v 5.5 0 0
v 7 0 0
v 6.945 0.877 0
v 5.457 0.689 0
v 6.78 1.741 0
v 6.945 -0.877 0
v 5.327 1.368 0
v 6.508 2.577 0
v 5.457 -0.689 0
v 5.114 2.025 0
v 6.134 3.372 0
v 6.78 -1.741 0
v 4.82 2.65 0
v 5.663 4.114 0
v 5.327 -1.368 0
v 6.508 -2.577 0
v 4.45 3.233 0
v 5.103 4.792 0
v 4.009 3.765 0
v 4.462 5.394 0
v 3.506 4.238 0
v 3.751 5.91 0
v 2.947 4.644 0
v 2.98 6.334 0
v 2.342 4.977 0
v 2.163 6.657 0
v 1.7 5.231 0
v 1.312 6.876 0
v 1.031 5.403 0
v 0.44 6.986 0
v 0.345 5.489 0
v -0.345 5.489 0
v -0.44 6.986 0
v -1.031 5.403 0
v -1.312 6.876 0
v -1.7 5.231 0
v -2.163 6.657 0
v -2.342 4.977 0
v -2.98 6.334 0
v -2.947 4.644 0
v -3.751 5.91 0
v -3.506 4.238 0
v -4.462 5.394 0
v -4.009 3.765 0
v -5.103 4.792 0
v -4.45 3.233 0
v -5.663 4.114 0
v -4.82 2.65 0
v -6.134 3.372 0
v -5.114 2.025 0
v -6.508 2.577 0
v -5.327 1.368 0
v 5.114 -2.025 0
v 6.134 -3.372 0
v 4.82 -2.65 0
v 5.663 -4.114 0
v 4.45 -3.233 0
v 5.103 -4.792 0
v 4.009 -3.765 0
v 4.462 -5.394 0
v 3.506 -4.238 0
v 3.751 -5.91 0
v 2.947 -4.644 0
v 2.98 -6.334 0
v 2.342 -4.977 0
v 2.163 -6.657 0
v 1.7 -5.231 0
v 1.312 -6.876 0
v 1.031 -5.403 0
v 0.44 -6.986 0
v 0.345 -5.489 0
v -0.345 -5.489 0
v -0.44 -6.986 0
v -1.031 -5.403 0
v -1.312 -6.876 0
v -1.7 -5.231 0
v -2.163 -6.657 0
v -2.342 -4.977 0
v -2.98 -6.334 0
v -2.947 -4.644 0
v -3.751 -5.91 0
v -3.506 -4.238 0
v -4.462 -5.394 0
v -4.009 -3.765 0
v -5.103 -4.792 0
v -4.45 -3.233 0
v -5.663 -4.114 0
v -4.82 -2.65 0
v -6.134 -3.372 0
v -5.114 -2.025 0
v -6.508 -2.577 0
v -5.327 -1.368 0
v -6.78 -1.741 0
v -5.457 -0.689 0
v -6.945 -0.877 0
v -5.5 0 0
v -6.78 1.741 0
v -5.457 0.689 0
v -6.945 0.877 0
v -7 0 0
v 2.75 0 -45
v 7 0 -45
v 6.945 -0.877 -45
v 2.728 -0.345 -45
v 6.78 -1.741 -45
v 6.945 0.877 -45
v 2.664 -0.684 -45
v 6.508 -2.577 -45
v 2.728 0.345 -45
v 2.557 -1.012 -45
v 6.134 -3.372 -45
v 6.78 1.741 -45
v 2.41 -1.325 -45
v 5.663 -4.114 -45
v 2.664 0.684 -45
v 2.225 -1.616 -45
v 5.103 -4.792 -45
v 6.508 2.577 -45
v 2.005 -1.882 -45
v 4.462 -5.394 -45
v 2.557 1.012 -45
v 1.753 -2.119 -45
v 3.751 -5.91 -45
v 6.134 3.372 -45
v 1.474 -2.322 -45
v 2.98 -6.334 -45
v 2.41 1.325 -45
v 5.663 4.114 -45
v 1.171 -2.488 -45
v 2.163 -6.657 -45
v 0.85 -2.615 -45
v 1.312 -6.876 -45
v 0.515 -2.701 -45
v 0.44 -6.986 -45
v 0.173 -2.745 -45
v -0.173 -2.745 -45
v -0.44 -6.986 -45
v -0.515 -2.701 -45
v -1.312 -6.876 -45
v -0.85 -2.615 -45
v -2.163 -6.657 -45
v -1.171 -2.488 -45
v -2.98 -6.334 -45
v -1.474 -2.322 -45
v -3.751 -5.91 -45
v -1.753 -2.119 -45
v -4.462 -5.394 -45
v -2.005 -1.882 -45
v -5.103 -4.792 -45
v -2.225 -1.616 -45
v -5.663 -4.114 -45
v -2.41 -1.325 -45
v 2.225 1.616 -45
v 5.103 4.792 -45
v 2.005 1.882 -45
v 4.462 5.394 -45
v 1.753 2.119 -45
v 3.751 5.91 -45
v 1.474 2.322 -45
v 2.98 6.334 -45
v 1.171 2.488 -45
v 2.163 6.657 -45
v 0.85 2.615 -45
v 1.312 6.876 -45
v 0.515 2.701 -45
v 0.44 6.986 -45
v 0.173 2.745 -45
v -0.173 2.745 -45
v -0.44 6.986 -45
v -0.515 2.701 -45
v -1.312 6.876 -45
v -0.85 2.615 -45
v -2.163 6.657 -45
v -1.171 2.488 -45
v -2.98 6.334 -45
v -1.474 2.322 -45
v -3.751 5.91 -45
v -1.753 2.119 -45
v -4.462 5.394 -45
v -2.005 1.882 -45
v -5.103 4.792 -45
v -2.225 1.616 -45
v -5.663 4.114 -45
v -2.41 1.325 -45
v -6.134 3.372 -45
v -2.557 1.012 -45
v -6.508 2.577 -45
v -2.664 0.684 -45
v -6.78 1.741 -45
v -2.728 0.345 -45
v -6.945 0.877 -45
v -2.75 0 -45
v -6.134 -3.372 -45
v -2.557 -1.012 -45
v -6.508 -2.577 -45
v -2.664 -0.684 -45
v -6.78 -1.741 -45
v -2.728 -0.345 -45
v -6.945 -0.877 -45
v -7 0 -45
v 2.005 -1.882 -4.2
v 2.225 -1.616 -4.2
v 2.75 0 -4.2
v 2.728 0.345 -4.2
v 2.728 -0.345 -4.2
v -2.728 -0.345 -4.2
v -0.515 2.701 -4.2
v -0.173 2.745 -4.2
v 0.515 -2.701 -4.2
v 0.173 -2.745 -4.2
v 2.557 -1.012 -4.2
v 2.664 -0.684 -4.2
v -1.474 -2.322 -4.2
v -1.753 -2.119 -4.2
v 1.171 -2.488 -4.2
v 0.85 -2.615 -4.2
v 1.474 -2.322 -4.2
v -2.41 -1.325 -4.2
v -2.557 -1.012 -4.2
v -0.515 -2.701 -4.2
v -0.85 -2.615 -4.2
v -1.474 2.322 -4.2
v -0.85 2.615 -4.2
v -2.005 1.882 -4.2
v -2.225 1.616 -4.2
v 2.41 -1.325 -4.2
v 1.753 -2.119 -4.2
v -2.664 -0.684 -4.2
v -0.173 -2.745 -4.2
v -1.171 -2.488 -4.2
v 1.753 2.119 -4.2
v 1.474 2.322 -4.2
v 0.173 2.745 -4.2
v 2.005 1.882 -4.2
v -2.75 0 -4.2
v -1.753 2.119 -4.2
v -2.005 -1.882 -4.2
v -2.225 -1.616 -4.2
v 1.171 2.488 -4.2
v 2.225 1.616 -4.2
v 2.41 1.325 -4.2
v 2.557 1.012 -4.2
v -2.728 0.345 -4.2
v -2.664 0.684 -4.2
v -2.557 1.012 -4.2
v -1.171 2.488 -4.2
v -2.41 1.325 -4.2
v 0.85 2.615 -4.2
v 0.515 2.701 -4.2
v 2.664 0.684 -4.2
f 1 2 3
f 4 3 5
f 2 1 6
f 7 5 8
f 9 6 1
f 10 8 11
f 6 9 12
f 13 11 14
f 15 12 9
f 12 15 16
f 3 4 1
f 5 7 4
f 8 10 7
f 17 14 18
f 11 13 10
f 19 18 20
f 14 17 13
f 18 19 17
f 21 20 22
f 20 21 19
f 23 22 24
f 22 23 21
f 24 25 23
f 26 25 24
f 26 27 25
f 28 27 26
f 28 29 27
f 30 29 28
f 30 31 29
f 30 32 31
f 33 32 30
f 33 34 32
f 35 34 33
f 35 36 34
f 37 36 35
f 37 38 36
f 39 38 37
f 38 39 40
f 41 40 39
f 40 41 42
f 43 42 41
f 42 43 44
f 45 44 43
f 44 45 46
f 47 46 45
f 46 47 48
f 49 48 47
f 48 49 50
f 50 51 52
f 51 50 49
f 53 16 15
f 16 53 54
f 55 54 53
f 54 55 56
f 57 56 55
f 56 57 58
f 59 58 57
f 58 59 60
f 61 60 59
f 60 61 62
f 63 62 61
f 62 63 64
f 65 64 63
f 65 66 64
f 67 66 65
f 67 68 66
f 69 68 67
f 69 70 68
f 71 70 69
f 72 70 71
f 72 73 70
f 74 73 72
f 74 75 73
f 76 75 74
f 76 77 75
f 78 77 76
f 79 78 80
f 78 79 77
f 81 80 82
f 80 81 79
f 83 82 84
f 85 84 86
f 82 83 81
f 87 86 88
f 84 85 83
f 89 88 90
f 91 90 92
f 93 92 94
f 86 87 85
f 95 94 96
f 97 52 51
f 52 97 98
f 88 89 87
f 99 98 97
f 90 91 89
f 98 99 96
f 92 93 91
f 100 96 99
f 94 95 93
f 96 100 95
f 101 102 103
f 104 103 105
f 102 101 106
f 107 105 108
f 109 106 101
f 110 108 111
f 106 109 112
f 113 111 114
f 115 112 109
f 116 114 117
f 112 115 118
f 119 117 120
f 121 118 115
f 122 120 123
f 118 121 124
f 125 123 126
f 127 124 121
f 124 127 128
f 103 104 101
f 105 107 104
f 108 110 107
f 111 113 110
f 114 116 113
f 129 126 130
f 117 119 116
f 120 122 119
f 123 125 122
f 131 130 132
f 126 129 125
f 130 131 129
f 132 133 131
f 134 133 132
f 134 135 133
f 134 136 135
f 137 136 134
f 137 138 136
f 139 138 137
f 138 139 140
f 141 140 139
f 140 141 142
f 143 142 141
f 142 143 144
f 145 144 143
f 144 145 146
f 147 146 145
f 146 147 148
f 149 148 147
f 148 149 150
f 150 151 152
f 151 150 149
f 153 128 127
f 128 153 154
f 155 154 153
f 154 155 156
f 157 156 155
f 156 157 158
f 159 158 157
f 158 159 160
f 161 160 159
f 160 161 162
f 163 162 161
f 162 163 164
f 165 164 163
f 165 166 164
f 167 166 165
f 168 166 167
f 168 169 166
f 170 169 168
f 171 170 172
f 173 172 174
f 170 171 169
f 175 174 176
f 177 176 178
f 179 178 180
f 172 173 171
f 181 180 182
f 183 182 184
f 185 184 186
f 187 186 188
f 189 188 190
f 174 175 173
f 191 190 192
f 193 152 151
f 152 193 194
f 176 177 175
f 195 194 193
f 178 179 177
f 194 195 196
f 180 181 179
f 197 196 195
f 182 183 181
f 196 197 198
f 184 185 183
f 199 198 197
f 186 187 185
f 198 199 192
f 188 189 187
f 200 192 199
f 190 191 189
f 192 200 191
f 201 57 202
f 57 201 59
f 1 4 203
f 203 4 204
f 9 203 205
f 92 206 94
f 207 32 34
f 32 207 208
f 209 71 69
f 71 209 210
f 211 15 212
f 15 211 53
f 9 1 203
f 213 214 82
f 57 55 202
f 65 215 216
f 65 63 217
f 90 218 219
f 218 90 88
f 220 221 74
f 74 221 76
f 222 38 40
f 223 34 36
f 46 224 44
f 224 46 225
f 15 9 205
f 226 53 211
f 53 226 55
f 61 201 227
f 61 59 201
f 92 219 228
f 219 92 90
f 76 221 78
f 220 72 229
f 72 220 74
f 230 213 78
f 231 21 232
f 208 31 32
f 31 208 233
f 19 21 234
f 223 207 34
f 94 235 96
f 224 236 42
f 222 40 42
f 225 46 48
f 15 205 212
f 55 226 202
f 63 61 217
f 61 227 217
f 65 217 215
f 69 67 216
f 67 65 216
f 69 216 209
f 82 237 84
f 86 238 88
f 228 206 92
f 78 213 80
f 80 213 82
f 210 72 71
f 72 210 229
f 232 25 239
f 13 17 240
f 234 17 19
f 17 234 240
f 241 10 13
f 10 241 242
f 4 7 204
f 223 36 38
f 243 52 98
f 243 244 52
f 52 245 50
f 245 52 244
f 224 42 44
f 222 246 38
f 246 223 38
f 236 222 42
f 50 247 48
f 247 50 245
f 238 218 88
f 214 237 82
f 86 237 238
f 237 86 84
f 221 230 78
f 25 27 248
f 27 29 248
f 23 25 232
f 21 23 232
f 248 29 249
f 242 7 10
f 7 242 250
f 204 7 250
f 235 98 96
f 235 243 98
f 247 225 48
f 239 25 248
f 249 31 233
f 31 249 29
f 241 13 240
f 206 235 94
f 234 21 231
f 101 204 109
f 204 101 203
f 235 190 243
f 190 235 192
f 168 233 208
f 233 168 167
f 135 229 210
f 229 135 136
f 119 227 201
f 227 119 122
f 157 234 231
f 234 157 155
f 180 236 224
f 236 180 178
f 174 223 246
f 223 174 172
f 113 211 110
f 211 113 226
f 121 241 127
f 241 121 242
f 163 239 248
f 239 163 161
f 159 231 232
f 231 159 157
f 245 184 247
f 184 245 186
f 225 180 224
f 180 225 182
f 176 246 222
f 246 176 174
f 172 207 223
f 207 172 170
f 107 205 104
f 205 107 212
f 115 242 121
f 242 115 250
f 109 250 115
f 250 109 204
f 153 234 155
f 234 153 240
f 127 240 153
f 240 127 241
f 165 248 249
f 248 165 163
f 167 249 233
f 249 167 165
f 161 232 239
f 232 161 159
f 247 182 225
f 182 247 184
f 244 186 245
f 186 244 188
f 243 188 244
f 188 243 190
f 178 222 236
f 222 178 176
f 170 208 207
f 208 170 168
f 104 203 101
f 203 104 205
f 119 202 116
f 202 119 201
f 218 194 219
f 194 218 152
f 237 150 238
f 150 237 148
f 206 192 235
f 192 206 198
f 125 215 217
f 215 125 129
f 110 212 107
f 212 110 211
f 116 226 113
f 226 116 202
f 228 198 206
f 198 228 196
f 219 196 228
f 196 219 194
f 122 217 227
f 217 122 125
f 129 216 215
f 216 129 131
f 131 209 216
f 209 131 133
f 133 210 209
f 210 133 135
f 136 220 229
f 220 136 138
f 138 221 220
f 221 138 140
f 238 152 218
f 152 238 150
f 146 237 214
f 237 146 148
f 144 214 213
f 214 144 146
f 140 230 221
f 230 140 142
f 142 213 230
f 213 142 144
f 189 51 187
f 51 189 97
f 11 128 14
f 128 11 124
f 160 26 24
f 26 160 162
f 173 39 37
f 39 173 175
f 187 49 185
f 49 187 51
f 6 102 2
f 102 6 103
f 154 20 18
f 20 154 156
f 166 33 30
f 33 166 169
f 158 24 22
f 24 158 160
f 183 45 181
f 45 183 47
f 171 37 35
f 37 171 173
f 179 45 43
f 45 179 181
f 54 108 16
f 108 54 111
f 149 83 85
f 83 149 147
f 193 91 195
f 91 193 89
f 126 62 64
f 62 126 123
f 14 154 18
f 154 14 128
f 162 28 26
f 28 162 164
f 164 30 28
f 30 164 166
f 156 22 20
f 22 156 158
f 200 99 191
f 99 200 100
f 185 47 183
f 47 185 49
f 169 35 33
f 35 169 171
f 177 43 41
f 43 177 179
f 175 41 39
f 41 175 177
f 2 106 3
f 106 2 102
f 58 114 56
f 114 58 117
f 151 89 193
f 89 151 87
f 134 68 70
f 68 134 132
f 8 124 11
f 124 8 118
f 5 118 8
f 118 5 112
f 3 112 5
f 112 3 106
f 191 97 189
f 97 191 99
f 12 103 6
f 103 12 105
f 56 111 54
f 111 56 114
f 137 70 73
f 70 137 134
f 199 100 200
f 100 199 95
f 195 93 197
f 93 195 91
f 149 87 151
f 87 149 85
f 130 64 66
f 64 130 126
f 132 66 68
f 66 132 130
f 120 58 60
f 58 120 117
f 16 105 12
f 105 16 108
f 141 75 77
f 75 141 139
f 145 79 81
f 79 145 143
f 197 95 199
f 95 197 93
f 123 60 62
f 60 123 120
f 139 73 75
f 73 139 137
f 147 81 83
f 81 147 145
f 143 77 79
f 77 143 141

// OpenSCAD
$fn = 50;


difference() {
	union() {
		translate(v = [0, 0, -45.0000000000]) {
			cylinder(h = 45, r = 7.0000000000);
		}
		cylinder(h = 0, r = 17.0000000000);
	}
	union() {
		translate(v = [0, 0, 0]) {
			rotate(a = [0, 0, 0]) {
				difference() {
					union() {
						#translate(v = [0, 0, -45.0000000000]) {
							cylinder(h = 45, r = 2.2500000000);
						}
						#translate(v = [0, 0, -4.2000000000]) {
							cylinder(h = 4.2000000000, r = 7.0000000000, r1 = 2.7500000000, r2 = 5.5000000000);
						}
						#translate(v = [0, 0, -45.0000000000]) {
							cylinder(h = 45, r = 2.7500000000);
						}
						#translate(v = [0, 0, -45.0000000000]) {
							cylinder(h = 45, r = 2.2500000000);
						}
					}
					union();
				}
			}
		}
	}
}
